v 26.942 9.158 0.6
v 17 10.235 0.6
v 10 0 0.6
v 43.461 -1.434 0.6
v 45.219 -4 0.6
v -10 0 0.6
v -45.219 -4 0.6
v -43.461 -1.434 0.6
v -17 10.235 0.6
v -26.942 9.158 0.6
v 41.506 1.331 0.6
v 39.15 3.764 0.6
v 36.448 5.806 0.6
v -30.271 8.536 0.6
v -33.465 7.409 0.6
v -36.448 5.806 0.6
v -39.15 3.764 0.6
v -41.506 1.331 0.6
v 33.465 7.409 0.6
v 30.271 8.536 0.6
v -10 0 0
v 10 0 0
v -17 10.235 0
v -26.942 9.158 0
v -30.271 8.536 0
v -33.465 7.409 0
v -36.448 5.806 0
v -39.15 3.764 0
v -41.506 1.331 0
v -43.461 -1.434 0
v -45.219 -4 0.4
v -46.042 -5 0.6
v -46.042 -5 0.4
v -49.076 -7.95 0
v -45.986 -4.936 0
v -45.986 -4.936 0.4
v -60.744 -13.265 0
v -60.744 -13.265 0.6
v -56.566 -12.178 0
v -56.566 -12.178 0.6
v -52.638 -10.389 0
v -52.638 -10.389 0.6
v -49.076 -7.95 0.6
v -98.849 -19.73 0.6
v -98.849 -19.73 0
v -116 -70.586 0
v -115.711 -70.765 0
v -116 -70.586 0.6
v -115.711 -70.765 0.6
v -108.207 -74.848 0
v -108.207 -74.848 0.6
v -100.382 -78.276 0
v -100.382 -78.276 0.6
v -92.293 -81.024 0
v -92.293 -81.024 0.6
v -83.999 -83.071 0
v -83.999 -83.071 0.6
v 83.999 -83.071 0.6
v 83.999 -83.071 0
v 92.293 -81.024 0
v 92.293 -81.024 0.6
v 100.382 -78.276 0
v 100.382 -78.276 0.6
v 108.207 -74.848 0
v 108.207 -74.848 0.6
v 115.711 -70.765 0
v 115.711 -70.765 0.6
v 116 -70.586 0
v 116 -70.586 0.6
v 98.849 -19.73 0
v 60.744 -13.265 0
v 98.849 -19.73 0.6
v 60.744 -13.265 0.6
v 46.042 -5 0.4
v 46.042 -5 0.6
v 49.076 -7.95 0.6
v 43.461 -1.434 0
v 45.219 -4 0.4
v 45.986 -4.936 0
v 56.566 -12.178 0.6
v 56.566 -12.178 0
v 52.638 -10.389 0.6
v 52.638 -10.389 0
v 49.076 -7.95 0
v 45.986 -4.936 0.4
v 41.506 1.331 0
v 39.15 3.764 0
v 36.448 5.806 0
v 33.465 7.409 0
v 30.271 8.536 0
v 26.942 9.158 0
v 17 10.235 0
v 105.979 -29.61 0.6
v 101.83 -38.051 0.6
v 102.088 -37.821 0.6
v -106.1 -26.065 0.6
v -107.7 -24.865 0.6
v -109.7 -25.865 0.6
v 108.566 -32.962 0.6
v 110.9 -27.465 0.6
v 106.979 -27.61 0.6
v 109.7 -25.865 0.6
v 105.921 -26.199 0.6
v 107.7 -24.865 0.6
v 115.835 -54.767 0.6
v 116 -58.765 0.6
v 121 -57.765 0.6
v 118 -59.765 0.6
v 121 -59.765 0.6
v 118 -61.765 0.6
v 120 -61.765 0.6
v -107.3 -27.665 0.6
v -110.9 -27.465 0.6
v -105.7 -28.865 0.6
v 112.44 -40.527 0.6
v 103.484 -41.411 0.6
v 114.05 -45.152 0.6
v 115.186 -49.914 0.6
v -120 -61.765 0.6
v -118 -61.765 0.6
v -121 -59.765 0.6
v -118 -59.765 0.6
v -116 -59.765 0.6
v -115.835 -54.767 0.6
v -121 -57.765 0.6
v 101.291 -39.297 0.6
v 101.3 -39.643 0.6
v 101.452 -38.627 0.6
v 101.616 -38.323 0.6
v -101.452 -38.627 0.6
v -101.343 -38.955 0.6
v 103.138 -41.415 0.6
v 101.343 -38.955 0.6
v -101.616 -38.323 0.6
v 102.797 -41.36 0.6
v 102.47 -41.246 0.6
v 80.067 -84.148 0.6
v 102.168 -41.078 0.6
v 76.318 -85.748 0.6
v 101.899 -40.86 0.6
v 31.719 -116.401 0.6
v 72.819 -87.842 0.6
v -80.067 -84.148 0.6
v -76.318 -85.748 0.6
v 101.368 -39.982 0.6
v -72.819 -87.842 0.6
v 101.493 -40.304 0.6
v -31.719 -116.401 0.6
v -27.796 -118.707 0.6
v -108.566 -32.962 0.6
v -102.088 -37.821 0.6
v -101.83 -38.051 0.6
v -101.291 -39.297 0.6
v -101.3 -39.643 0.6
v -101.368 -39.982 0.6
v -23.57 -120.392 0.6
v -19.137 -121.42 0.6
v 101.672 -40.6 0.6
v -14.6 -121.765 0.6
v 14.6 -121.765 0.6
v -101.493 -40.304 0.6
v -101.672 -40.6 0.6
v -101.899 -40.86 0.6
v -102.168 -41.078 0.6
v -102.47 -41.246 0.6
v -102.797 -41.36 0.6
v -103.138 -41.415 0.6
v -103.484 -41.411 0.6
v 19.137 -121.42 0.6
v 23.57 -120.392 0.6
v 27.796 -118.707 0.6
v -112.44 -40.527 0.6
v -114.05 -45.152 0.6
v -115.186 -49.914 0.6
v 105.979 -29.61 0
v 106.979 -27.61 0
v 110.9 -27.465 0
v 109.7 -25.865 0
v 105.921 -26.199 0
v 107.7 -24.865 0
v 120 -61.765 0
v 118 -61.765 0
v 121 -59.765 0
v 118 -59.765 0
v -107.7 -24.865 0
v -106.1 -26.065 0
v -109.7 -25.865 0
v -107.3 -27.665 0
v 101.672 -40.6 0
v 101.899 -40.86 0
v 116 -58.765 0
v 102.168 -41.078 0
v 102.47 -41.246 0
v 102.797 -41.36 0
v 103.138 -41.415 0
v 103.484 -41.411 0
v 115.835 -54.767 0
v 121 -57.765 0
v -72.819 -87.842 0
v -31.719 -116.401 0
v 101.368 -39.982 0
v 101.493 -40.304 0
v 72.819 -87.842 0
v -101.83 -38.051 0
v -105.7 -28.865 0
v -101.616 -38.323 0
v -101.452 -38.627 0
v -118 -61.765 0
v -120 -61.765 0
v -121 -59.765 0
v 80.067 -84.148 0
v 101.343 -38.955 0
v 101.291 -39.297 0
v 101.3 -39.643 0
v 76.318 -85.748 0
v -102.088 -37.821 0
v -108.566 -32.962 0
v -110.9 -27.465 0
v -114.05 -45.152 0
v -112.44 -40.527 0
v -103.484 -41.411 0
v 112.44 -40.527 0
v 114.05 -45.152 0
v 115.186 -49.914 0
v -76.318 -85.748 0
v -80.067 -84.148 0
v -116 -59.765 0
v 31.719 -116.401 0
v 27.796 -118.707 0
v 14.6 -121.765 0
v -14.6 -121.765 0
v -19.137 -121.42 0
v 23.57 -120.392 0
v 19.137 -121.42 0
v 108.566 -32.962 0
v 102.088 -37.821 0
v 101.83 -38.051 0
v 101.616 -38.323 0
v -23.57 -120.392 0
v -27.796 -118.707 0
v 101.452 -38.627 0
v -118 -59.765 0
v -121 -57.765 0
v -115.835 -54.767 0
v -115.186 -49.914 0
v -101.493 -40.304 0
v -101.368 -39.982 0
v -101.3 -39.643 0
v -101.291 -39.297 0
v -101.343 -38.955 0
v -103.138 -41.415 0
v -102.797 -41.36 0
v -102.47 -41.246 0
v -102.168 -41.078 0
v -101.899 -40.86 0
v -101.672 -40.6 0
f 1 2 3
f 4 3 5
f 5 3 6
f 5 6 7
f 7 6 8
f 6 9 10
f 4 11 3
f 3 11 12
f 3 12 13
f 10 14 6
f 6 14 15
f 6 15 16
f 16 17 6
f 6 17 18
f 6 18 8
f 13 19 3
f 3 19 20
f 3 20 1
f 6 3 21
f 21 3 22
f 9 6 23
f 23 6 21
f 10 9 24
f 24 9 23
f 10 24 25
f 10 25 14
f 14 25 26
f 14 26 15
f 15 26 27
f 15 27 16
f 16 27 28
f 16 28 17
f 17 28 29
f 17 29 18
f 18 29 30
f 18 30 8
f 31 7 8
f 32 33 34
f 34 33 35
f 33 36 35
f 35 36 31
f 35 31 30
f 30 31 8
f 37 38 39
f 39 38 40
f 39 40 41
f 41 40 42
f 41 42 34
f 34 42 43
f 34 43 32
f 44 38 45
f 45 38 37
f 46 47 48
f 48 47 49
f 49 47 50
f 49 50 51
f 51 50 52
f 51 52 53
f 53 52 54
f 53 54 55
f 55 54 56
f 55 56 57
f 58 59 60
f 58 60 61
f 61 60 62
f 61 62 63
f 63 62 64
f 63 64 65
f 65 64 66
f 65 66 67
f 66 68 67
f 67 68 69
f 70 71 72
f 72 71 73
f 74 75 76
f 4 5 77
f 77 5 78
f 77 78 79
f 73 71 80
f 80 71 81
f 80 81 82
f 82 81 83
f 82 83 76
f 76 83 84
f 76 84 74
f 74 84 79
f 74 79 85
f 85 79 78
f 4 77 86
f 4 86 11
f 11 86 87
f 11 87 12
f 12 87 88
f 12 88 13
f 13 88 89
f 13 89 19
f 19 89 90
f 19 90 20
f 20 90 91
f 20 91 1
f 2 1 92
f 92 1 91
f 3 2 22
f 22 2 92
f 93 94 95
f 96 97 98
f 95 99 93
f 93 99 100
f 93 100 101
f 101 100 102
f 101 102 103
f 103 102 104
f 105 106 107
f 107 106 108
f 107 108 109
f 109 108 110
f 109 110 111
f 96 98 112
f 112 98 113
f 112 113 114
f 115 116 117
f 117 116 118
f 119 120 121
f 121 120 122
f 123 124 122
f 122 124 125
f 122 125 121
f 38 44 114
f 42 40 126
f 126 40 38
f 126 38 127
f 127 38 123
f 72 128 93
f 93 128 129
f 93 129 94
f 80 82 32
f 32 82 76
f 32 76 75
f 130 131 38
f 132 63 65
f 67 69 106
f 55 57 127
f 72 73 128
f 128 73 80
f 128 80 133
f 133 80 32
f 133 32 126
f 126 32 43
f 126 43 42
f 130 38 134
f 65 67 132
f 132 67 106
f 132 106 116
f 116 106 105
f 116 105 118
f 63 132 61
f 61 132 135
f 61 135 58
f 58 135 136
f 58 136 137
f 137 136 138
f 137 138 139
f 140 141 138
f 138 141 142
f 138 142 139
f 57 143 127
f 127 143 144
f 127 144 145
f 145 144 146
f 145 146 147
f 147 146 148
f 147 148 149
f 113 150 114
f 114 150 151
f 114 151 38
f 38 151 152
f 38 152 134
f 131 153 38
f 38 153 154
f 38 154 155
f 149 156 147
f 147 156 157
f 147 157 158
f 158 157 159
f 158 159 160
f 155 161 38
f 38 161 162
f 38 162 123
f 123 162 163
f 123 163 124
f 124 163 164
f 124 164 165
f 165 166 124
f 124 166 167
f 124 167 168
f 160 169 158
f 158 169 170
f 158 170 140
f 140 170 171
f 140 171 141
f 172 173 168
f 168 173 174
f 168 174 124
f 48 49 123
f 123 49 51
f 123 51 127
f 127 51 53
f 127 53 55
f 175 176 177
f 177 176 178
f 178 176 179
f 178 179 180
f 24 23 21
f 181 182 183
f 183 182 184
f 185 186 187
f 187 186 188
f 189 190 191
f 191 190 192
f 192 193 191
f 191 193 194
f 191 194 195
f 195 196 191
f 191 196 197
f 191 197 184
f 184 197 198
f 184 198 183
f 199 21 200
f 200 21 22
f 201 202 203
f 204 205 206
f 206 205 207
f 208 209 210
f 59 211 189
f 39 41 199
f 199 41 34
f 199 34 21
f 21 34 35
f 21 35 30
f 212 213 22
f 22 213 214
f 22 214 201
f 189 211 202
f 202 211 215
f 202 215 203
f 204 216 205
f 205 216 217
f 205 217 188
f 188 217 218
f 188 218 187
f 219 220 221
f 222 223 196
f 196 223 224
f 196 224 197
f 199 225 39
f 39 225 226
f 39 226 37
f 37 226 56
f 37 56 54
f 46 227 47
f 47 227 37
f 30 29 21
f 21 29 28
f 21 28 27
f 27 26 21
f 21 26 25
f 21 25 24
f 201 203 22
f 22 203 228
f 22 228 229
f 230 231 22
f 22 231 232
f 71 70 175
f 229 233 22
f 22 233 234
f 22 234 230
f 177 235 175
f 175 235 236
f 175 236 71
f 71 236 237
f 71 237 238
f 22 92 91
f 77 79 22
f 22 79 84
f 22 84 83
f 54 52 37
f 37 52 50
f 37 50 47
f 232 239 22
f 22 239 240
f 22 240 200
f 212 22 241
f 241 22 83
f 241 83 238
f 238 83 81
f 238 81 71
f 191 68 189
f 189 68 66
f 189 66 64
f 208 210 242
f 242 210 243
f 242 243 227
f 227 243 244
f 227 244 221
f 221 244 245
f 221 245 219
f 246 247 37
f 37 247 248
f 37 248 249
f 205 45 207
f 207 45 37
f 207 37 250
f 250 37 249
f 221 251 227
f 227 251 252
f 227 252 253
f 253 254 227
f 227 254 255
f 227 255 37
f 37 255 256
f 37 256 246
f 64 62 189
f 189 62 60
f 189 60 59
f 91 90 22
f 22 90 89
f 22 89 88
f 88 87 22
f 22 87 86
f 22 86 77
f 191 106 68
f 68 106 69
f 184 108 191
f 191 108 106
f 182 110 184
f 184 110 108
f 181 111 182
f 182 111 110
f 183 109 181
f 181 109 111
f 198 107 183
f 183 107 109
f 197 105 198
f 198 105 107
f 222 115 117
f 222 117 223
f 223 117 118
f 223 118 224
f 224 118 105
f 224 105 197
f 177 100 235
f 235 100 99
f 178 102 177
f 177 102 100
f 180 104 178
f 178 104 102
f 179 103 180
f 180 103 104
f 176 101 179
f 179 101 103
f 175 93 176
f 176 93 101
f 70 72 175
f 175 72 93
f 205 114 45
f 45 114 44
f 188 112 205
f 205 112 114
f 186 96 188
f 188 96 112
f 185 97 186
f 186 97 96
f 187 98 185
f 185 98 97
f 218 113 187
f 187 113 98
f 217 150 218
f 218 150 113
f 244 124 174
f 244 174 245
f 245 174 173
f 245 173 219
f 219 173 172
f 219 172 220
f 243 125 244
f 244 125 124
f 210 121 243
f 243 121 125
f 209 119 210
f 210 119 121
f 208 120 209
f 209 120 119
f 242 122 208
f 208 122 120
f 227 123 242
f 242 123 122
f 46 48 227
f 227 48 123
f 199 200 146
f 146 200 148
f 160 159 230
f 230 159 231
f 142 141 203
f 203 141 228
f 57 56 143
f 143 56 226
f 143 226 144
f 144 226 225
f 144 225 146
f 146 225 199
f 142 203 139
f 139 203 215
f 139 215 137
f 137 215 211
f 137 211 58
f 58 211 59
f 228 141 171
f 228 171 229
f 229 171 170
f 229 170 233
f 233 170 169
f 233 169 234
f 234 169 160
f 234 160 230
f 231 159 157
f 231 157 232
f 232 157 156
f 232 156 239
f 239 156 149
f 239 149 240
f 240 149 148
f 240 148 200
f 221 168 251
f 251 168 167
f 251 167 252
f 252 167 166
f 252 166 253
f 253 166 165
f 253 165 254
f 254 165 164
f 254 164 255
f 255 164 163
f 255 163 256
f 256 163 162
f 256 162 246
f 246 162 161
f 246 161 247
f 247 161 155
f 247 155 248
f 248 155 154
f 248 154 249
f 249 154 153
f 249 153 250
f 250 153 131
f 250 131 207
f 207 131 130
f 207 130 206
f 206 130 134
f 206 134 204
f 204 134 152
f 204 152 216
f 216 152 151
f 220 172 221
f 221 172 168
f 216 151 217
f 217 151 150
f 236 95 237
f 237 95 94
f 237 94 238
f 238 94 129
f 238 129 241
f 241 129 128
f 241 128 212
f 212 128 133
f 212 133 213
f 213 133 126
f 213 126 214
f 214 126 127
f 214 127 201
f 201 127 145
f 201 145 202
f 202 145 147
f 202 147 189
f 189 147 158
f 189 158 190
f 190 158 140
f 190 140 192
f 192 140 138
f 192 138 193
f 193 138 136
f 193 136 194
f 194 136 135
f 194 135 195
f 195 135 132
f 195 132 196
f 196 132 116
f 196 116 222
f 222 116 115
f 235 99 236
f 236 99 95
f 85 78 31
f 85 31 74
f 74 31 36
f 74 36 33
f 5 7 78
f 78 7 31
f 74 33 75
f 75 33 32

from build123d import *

# Parameters (mm, degrees)
MAIN_SHAPE_DEPTH               = 0.6
TABS_DEPTH                     = 154.060061459
TABS_DEPTH_BACK                = 154.060061459
CHIN_GUARD_DEPTH               = 0.6
FILLET1_R                      = 30
QUICK_RELEASE_NOTCH_DEPTH      = 172.662513141
QUICK_RELEASE_NOTCH_DEPTH_BACK = 172.662513141
SKETCH8_W                      = 100
SKETCH8_H                      = 1
CUT_EXTRUDE3_DEPTH             = 0.2


with BuildPart() as part:
    # Sketch1 → Main Shape (new body)
    with BuildSketch(Plane.XY):
        with BuildLine():
            Line((-24, -91.764766734), (24, -91.764766734))
            Line((24, -91.764766734), (78.266232563, -84.05670244))
            ThreePointArc((78.266232563, -84.05670244), (97.655491519, -79.289252293), (115.711102551, -70.764766734))
            ThreePointArc((115.711102551, -70.764766734), (120.685143325, -65.658407438), (122.5, -58.764766734))
            ThreePointArc((122.5, -58.764766734), (120.227482046, -43.118277124), (113.597722286, -28.764766734))
            ThreePointArc((113.597722286, -28.764766734), (107.811505455, -22.955172168), (100.180351554, -19.955641477))
            Line((100.180351554, -19.955641477), (60.74391922, -13.264766734))
            ThreePointArc((60.74391922, -13.264766734), (50.804108255, -9.246591688), (43.461443341, -1.434367632))
            ThreePointArc((43.461443341, -1.434367632), (36.448172688, 5.805997675), (26.941855461, 9.15842781))
            Line((26.941855461, 9.15842781), (17, 10.235233266))
            Line((17, 10.235233266), (10, 0))
            Line((10, 0), (-10, 0))
            Line((-10, 0), (-17, 10.235233266))
            Line((-17, 10.235233266), (-26.941855461, 9.15842781))
            ThreePointArc((-26.941855461, 9.15842781), (-36.448172688, 5.805997675), (-43.461443341, -1.434367632))
            ThreePointArc((-43.461443341, -1.434367632), (-50.804108255, -9.246591688), (-60.74391922, -13.264766734))
            Line((-60.74391922, -13.264766734), (-100.180351554, -19.955641477))
            ThreePointArc((-100.180351554, -19.955641477), (-107.811505455, -22.955172168), (-113.597722286, -28.764766734))
            ThreePointArc((-113.597722286, -28.764766734), (-120.227482046, -43.118277124), (-122.5, -58.764766734))
            ThreePointArc((-122.5, -58.764766734), (-120.685143325, -65.658407438), (-115.711102551, -70.764766734))
            ThreePointArc((-115.711102551, -70.764766734), (-97.655491519, -79.289252293), (-78.266232563, -84.05670244))
            Line((-78.266232563, -84.05670244), (-24, -91.764766734))
        make_face()
    extrude(amount=MAIN_SHAPE_DEPTH)

    # Sketch2 → Tabs (cut, two sides: drawn at the far end of the back side and taken through both)
    with BuildSketch(Plane.XY.offset(0.6).offset(-TABS_DEPTH_BACK)):
        with BuildLine():
            Line((-121, -59.764766734), (-121, -57.764766734))
            Line((-121, -57.764766734), (-115.834995394, -54.767490128))
            ThreePointArc((-115.834995394, -54.767490128), (-113.511139955, -43.427720083), (-108.566362279, -32.961590783))
            Line((-108.566362279, -32.961590783), (-110.9, -27.464766734))
            Line((-110.9, -27.464766734), (-109.7, -25.864766734))
            Line((-109.7, -25.864766734), (-107.7, -24.864766734))
            Line((-107.7, -24.864766734), (-106.1, -26.064766734))
            Line((-106.1, -26.064766734), (-107.3, -27.664766734))
            Line((-107.3, -27.664766734), (-105.7, -28.864766734))
            Line((-105.7, -28.864766734), (-98.84870892, -19.729711961))
            Line((-98.84870892, -19.729711961), (-100.180351554, -19.955641477))
            ThreePointArc((-100.180351554, -19.955641477), (-107.811505455, -22.955172168), (-113.597722286, -28.764766734))
            ThreePointArc((-113.597722286, -28.764766734), (-120.227482046, -43.118277124), (-122.5, -58.764766734))
            ThreePointArc((-122.5, -58.764766734), (-120.767844146, -65.510135516), (-116, -70.586357152))
            Line((-116, -70.586357152), (-116, -59.764766734))
            Line((-116, -59.764766734), (-118, -59.764766734))
            Line((-118, -59.764766734), (-118, -61.764766734))
            Line((-118, -61.764766734), (-120, -61.764766734))
            Line((-120, -61.764766734), (-121, -59.764766734))
        make_face()
        with BuildLine():
            Line((109.7, -25.864766734), (110.9, -27.464766734))
            Line((110.9, -27.464766734), (108.566362279, -32.961590783))
            ThreePointArc((108.566362279, -32.961590783), (113.511139955, -43.427720083), (115.834995394, -54.767490128))
            Line((115.834995394, -54.767490128), (121, -57.764766734))
            Line((121, -57.764766734), (121, -59.764766734))
            Line((121, -59.764766734), (120, -61.764766734))
            Line((120, -61.764766734), (118, -61.764766734))
            Line((118, -61.764766734), (118, -59.764766734))
            Line((118, -59.764766734), (116, -58.764766734))
            Line((116, -58.764766734), (116, -70.586357152))
            ThreePointArc((116, -70.586357152), (120.767844146, -65.510135516), (122.5, -58.764766734))
            ThreePointArc((122.5, -58.764766734), (120.227482046, -43.118277124), (113.597722286, -28.764766734))
            ThreePointArc((113.597722286, -28.764766734), (107.811505455, -22.955172168), (100.180351554, -19.955641477))
            Line((100.180351554, -19.955641477), (98.84870892, -19.729711961))
            Line((98.84870892, -19.729711961), (105.979039493, -29.610311845))
            Line((105.979039493, -29.610311845), (106.979039493, -27.610311845))
            Line((106.979039493, -27.610311845), (105.920723622, -26.199224018))
            Line((105.920723622, -26.199224018), (107.7, -24.864766734))
            Line((107.7, -24.864766734), (109.7, -25.864766734))
        make_face()
    extrude(amount=TABS_DEPTH + TABS_DEPTH_BACK, mode=Mode.SUBTRACT)

    # Sketch5 → Chin guard (add)
    with BuildSketch(Plane.XY.offset(0.6)):
        Polygon((-78.266232563, -84.05670244), (-24, -121.764766734), (24, -121.764766734), (78.266232563, -84.05670244), (24, -91.764766734), (-24, -91.764766734), align=None)
    extrude(amount=-CHIN_GUARD_DEPTH)

    # Fillet1
    fillet1_edges = [part.edges().sort_by_distance(p)[0] for p in [
        (-24, -121.764766734, 0.3),
        (24, -121.764766734, 0.3),
        (78.266232563, -84.05670244, 0.3),
        (-78.266232563, -84.05670244, 0.3),
    ]]
    fillet(fillet1_edges, radius=FILLET1_R)

    # Sketch7 → Quick Release Notch (cut, two sides: drawn at the far end of the back side and taken through both)
    with BuildSketch(Plane.XY.offset(0.6).offset(-QUICK_RELEASE_NOTCH_DEPTH_BACK)):
        with BuildLine():
            Line((-103.483971257, -41.410990303), (-112.440490058, -40.52737785))
            ThreePointArc((-112.440490058, -40.52737785), (-110.669490914, -36.659449404), (-108.566362279, -32.961590783))
            Line((-108.566362279, -32.961590783), (-102.087612935, -37.820652791))
            ThreePointArc((-102.087612935, -37.820652791), (-101.423623928, -40.145597606), (-103.483971257, -41.410990303))
        make_face()
        with BuildLine():
            Line((108.566362279, -32.961590783), (102.087612935, -37.820652791))
            ThreePointArc((102.087612935, -37.820652791), (101.423623928, -40.145597606), (103.483971257, -41.410990303))
            Line((103.483971257, -41.410990303), (112.440490058, -40.52737785))
            ThreePointArc((112.440490058, -40.52737785), (110.669490914, -36.659449404), (108.566362279, -32.961590783))
        make_face()
    extrude(amount=QUICK_RELEASE_NOTCH_DEPTH + QUICK_RELEASE_NOTCH_DEPTH_BACK, mode=Mode.SUBTRACT)

    # Sketch8 → Cut-Extrude3 (cut)
    with BuildSketch(Plane.XY.offset(0.6)):
        with Locations((0, -4.5)):
            Rectangle(SKETCH8_W, SKETCH8_H)
    extrude(amount=-CUT_EXTRUDE3_DEPTH, mode=Mode.SUBTRACT)


solid = part.part
